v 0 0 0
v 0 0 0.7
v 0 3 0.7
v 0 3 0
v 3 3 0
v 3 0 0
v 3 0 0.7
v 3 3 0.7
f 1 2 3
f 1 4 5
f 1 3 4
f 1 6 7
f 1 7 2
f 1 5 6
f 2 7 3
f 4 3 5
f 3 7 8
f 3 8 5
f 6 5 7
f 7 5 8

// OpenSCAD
/* Warning, this is a very basic generator with a lot of approximation 
input data : [WTLA, 5SX, 3x3x0.70mm, 20, , B, C04-00184B]
generated by com.zoubworld.electronics.cad.model3d.Basic
Date : Sun Feb 15 10:50:48 CET 2026
*/

//body
color("black")
translate([0,0,0])
cube([3.0,3.0,0.7], center=false);
